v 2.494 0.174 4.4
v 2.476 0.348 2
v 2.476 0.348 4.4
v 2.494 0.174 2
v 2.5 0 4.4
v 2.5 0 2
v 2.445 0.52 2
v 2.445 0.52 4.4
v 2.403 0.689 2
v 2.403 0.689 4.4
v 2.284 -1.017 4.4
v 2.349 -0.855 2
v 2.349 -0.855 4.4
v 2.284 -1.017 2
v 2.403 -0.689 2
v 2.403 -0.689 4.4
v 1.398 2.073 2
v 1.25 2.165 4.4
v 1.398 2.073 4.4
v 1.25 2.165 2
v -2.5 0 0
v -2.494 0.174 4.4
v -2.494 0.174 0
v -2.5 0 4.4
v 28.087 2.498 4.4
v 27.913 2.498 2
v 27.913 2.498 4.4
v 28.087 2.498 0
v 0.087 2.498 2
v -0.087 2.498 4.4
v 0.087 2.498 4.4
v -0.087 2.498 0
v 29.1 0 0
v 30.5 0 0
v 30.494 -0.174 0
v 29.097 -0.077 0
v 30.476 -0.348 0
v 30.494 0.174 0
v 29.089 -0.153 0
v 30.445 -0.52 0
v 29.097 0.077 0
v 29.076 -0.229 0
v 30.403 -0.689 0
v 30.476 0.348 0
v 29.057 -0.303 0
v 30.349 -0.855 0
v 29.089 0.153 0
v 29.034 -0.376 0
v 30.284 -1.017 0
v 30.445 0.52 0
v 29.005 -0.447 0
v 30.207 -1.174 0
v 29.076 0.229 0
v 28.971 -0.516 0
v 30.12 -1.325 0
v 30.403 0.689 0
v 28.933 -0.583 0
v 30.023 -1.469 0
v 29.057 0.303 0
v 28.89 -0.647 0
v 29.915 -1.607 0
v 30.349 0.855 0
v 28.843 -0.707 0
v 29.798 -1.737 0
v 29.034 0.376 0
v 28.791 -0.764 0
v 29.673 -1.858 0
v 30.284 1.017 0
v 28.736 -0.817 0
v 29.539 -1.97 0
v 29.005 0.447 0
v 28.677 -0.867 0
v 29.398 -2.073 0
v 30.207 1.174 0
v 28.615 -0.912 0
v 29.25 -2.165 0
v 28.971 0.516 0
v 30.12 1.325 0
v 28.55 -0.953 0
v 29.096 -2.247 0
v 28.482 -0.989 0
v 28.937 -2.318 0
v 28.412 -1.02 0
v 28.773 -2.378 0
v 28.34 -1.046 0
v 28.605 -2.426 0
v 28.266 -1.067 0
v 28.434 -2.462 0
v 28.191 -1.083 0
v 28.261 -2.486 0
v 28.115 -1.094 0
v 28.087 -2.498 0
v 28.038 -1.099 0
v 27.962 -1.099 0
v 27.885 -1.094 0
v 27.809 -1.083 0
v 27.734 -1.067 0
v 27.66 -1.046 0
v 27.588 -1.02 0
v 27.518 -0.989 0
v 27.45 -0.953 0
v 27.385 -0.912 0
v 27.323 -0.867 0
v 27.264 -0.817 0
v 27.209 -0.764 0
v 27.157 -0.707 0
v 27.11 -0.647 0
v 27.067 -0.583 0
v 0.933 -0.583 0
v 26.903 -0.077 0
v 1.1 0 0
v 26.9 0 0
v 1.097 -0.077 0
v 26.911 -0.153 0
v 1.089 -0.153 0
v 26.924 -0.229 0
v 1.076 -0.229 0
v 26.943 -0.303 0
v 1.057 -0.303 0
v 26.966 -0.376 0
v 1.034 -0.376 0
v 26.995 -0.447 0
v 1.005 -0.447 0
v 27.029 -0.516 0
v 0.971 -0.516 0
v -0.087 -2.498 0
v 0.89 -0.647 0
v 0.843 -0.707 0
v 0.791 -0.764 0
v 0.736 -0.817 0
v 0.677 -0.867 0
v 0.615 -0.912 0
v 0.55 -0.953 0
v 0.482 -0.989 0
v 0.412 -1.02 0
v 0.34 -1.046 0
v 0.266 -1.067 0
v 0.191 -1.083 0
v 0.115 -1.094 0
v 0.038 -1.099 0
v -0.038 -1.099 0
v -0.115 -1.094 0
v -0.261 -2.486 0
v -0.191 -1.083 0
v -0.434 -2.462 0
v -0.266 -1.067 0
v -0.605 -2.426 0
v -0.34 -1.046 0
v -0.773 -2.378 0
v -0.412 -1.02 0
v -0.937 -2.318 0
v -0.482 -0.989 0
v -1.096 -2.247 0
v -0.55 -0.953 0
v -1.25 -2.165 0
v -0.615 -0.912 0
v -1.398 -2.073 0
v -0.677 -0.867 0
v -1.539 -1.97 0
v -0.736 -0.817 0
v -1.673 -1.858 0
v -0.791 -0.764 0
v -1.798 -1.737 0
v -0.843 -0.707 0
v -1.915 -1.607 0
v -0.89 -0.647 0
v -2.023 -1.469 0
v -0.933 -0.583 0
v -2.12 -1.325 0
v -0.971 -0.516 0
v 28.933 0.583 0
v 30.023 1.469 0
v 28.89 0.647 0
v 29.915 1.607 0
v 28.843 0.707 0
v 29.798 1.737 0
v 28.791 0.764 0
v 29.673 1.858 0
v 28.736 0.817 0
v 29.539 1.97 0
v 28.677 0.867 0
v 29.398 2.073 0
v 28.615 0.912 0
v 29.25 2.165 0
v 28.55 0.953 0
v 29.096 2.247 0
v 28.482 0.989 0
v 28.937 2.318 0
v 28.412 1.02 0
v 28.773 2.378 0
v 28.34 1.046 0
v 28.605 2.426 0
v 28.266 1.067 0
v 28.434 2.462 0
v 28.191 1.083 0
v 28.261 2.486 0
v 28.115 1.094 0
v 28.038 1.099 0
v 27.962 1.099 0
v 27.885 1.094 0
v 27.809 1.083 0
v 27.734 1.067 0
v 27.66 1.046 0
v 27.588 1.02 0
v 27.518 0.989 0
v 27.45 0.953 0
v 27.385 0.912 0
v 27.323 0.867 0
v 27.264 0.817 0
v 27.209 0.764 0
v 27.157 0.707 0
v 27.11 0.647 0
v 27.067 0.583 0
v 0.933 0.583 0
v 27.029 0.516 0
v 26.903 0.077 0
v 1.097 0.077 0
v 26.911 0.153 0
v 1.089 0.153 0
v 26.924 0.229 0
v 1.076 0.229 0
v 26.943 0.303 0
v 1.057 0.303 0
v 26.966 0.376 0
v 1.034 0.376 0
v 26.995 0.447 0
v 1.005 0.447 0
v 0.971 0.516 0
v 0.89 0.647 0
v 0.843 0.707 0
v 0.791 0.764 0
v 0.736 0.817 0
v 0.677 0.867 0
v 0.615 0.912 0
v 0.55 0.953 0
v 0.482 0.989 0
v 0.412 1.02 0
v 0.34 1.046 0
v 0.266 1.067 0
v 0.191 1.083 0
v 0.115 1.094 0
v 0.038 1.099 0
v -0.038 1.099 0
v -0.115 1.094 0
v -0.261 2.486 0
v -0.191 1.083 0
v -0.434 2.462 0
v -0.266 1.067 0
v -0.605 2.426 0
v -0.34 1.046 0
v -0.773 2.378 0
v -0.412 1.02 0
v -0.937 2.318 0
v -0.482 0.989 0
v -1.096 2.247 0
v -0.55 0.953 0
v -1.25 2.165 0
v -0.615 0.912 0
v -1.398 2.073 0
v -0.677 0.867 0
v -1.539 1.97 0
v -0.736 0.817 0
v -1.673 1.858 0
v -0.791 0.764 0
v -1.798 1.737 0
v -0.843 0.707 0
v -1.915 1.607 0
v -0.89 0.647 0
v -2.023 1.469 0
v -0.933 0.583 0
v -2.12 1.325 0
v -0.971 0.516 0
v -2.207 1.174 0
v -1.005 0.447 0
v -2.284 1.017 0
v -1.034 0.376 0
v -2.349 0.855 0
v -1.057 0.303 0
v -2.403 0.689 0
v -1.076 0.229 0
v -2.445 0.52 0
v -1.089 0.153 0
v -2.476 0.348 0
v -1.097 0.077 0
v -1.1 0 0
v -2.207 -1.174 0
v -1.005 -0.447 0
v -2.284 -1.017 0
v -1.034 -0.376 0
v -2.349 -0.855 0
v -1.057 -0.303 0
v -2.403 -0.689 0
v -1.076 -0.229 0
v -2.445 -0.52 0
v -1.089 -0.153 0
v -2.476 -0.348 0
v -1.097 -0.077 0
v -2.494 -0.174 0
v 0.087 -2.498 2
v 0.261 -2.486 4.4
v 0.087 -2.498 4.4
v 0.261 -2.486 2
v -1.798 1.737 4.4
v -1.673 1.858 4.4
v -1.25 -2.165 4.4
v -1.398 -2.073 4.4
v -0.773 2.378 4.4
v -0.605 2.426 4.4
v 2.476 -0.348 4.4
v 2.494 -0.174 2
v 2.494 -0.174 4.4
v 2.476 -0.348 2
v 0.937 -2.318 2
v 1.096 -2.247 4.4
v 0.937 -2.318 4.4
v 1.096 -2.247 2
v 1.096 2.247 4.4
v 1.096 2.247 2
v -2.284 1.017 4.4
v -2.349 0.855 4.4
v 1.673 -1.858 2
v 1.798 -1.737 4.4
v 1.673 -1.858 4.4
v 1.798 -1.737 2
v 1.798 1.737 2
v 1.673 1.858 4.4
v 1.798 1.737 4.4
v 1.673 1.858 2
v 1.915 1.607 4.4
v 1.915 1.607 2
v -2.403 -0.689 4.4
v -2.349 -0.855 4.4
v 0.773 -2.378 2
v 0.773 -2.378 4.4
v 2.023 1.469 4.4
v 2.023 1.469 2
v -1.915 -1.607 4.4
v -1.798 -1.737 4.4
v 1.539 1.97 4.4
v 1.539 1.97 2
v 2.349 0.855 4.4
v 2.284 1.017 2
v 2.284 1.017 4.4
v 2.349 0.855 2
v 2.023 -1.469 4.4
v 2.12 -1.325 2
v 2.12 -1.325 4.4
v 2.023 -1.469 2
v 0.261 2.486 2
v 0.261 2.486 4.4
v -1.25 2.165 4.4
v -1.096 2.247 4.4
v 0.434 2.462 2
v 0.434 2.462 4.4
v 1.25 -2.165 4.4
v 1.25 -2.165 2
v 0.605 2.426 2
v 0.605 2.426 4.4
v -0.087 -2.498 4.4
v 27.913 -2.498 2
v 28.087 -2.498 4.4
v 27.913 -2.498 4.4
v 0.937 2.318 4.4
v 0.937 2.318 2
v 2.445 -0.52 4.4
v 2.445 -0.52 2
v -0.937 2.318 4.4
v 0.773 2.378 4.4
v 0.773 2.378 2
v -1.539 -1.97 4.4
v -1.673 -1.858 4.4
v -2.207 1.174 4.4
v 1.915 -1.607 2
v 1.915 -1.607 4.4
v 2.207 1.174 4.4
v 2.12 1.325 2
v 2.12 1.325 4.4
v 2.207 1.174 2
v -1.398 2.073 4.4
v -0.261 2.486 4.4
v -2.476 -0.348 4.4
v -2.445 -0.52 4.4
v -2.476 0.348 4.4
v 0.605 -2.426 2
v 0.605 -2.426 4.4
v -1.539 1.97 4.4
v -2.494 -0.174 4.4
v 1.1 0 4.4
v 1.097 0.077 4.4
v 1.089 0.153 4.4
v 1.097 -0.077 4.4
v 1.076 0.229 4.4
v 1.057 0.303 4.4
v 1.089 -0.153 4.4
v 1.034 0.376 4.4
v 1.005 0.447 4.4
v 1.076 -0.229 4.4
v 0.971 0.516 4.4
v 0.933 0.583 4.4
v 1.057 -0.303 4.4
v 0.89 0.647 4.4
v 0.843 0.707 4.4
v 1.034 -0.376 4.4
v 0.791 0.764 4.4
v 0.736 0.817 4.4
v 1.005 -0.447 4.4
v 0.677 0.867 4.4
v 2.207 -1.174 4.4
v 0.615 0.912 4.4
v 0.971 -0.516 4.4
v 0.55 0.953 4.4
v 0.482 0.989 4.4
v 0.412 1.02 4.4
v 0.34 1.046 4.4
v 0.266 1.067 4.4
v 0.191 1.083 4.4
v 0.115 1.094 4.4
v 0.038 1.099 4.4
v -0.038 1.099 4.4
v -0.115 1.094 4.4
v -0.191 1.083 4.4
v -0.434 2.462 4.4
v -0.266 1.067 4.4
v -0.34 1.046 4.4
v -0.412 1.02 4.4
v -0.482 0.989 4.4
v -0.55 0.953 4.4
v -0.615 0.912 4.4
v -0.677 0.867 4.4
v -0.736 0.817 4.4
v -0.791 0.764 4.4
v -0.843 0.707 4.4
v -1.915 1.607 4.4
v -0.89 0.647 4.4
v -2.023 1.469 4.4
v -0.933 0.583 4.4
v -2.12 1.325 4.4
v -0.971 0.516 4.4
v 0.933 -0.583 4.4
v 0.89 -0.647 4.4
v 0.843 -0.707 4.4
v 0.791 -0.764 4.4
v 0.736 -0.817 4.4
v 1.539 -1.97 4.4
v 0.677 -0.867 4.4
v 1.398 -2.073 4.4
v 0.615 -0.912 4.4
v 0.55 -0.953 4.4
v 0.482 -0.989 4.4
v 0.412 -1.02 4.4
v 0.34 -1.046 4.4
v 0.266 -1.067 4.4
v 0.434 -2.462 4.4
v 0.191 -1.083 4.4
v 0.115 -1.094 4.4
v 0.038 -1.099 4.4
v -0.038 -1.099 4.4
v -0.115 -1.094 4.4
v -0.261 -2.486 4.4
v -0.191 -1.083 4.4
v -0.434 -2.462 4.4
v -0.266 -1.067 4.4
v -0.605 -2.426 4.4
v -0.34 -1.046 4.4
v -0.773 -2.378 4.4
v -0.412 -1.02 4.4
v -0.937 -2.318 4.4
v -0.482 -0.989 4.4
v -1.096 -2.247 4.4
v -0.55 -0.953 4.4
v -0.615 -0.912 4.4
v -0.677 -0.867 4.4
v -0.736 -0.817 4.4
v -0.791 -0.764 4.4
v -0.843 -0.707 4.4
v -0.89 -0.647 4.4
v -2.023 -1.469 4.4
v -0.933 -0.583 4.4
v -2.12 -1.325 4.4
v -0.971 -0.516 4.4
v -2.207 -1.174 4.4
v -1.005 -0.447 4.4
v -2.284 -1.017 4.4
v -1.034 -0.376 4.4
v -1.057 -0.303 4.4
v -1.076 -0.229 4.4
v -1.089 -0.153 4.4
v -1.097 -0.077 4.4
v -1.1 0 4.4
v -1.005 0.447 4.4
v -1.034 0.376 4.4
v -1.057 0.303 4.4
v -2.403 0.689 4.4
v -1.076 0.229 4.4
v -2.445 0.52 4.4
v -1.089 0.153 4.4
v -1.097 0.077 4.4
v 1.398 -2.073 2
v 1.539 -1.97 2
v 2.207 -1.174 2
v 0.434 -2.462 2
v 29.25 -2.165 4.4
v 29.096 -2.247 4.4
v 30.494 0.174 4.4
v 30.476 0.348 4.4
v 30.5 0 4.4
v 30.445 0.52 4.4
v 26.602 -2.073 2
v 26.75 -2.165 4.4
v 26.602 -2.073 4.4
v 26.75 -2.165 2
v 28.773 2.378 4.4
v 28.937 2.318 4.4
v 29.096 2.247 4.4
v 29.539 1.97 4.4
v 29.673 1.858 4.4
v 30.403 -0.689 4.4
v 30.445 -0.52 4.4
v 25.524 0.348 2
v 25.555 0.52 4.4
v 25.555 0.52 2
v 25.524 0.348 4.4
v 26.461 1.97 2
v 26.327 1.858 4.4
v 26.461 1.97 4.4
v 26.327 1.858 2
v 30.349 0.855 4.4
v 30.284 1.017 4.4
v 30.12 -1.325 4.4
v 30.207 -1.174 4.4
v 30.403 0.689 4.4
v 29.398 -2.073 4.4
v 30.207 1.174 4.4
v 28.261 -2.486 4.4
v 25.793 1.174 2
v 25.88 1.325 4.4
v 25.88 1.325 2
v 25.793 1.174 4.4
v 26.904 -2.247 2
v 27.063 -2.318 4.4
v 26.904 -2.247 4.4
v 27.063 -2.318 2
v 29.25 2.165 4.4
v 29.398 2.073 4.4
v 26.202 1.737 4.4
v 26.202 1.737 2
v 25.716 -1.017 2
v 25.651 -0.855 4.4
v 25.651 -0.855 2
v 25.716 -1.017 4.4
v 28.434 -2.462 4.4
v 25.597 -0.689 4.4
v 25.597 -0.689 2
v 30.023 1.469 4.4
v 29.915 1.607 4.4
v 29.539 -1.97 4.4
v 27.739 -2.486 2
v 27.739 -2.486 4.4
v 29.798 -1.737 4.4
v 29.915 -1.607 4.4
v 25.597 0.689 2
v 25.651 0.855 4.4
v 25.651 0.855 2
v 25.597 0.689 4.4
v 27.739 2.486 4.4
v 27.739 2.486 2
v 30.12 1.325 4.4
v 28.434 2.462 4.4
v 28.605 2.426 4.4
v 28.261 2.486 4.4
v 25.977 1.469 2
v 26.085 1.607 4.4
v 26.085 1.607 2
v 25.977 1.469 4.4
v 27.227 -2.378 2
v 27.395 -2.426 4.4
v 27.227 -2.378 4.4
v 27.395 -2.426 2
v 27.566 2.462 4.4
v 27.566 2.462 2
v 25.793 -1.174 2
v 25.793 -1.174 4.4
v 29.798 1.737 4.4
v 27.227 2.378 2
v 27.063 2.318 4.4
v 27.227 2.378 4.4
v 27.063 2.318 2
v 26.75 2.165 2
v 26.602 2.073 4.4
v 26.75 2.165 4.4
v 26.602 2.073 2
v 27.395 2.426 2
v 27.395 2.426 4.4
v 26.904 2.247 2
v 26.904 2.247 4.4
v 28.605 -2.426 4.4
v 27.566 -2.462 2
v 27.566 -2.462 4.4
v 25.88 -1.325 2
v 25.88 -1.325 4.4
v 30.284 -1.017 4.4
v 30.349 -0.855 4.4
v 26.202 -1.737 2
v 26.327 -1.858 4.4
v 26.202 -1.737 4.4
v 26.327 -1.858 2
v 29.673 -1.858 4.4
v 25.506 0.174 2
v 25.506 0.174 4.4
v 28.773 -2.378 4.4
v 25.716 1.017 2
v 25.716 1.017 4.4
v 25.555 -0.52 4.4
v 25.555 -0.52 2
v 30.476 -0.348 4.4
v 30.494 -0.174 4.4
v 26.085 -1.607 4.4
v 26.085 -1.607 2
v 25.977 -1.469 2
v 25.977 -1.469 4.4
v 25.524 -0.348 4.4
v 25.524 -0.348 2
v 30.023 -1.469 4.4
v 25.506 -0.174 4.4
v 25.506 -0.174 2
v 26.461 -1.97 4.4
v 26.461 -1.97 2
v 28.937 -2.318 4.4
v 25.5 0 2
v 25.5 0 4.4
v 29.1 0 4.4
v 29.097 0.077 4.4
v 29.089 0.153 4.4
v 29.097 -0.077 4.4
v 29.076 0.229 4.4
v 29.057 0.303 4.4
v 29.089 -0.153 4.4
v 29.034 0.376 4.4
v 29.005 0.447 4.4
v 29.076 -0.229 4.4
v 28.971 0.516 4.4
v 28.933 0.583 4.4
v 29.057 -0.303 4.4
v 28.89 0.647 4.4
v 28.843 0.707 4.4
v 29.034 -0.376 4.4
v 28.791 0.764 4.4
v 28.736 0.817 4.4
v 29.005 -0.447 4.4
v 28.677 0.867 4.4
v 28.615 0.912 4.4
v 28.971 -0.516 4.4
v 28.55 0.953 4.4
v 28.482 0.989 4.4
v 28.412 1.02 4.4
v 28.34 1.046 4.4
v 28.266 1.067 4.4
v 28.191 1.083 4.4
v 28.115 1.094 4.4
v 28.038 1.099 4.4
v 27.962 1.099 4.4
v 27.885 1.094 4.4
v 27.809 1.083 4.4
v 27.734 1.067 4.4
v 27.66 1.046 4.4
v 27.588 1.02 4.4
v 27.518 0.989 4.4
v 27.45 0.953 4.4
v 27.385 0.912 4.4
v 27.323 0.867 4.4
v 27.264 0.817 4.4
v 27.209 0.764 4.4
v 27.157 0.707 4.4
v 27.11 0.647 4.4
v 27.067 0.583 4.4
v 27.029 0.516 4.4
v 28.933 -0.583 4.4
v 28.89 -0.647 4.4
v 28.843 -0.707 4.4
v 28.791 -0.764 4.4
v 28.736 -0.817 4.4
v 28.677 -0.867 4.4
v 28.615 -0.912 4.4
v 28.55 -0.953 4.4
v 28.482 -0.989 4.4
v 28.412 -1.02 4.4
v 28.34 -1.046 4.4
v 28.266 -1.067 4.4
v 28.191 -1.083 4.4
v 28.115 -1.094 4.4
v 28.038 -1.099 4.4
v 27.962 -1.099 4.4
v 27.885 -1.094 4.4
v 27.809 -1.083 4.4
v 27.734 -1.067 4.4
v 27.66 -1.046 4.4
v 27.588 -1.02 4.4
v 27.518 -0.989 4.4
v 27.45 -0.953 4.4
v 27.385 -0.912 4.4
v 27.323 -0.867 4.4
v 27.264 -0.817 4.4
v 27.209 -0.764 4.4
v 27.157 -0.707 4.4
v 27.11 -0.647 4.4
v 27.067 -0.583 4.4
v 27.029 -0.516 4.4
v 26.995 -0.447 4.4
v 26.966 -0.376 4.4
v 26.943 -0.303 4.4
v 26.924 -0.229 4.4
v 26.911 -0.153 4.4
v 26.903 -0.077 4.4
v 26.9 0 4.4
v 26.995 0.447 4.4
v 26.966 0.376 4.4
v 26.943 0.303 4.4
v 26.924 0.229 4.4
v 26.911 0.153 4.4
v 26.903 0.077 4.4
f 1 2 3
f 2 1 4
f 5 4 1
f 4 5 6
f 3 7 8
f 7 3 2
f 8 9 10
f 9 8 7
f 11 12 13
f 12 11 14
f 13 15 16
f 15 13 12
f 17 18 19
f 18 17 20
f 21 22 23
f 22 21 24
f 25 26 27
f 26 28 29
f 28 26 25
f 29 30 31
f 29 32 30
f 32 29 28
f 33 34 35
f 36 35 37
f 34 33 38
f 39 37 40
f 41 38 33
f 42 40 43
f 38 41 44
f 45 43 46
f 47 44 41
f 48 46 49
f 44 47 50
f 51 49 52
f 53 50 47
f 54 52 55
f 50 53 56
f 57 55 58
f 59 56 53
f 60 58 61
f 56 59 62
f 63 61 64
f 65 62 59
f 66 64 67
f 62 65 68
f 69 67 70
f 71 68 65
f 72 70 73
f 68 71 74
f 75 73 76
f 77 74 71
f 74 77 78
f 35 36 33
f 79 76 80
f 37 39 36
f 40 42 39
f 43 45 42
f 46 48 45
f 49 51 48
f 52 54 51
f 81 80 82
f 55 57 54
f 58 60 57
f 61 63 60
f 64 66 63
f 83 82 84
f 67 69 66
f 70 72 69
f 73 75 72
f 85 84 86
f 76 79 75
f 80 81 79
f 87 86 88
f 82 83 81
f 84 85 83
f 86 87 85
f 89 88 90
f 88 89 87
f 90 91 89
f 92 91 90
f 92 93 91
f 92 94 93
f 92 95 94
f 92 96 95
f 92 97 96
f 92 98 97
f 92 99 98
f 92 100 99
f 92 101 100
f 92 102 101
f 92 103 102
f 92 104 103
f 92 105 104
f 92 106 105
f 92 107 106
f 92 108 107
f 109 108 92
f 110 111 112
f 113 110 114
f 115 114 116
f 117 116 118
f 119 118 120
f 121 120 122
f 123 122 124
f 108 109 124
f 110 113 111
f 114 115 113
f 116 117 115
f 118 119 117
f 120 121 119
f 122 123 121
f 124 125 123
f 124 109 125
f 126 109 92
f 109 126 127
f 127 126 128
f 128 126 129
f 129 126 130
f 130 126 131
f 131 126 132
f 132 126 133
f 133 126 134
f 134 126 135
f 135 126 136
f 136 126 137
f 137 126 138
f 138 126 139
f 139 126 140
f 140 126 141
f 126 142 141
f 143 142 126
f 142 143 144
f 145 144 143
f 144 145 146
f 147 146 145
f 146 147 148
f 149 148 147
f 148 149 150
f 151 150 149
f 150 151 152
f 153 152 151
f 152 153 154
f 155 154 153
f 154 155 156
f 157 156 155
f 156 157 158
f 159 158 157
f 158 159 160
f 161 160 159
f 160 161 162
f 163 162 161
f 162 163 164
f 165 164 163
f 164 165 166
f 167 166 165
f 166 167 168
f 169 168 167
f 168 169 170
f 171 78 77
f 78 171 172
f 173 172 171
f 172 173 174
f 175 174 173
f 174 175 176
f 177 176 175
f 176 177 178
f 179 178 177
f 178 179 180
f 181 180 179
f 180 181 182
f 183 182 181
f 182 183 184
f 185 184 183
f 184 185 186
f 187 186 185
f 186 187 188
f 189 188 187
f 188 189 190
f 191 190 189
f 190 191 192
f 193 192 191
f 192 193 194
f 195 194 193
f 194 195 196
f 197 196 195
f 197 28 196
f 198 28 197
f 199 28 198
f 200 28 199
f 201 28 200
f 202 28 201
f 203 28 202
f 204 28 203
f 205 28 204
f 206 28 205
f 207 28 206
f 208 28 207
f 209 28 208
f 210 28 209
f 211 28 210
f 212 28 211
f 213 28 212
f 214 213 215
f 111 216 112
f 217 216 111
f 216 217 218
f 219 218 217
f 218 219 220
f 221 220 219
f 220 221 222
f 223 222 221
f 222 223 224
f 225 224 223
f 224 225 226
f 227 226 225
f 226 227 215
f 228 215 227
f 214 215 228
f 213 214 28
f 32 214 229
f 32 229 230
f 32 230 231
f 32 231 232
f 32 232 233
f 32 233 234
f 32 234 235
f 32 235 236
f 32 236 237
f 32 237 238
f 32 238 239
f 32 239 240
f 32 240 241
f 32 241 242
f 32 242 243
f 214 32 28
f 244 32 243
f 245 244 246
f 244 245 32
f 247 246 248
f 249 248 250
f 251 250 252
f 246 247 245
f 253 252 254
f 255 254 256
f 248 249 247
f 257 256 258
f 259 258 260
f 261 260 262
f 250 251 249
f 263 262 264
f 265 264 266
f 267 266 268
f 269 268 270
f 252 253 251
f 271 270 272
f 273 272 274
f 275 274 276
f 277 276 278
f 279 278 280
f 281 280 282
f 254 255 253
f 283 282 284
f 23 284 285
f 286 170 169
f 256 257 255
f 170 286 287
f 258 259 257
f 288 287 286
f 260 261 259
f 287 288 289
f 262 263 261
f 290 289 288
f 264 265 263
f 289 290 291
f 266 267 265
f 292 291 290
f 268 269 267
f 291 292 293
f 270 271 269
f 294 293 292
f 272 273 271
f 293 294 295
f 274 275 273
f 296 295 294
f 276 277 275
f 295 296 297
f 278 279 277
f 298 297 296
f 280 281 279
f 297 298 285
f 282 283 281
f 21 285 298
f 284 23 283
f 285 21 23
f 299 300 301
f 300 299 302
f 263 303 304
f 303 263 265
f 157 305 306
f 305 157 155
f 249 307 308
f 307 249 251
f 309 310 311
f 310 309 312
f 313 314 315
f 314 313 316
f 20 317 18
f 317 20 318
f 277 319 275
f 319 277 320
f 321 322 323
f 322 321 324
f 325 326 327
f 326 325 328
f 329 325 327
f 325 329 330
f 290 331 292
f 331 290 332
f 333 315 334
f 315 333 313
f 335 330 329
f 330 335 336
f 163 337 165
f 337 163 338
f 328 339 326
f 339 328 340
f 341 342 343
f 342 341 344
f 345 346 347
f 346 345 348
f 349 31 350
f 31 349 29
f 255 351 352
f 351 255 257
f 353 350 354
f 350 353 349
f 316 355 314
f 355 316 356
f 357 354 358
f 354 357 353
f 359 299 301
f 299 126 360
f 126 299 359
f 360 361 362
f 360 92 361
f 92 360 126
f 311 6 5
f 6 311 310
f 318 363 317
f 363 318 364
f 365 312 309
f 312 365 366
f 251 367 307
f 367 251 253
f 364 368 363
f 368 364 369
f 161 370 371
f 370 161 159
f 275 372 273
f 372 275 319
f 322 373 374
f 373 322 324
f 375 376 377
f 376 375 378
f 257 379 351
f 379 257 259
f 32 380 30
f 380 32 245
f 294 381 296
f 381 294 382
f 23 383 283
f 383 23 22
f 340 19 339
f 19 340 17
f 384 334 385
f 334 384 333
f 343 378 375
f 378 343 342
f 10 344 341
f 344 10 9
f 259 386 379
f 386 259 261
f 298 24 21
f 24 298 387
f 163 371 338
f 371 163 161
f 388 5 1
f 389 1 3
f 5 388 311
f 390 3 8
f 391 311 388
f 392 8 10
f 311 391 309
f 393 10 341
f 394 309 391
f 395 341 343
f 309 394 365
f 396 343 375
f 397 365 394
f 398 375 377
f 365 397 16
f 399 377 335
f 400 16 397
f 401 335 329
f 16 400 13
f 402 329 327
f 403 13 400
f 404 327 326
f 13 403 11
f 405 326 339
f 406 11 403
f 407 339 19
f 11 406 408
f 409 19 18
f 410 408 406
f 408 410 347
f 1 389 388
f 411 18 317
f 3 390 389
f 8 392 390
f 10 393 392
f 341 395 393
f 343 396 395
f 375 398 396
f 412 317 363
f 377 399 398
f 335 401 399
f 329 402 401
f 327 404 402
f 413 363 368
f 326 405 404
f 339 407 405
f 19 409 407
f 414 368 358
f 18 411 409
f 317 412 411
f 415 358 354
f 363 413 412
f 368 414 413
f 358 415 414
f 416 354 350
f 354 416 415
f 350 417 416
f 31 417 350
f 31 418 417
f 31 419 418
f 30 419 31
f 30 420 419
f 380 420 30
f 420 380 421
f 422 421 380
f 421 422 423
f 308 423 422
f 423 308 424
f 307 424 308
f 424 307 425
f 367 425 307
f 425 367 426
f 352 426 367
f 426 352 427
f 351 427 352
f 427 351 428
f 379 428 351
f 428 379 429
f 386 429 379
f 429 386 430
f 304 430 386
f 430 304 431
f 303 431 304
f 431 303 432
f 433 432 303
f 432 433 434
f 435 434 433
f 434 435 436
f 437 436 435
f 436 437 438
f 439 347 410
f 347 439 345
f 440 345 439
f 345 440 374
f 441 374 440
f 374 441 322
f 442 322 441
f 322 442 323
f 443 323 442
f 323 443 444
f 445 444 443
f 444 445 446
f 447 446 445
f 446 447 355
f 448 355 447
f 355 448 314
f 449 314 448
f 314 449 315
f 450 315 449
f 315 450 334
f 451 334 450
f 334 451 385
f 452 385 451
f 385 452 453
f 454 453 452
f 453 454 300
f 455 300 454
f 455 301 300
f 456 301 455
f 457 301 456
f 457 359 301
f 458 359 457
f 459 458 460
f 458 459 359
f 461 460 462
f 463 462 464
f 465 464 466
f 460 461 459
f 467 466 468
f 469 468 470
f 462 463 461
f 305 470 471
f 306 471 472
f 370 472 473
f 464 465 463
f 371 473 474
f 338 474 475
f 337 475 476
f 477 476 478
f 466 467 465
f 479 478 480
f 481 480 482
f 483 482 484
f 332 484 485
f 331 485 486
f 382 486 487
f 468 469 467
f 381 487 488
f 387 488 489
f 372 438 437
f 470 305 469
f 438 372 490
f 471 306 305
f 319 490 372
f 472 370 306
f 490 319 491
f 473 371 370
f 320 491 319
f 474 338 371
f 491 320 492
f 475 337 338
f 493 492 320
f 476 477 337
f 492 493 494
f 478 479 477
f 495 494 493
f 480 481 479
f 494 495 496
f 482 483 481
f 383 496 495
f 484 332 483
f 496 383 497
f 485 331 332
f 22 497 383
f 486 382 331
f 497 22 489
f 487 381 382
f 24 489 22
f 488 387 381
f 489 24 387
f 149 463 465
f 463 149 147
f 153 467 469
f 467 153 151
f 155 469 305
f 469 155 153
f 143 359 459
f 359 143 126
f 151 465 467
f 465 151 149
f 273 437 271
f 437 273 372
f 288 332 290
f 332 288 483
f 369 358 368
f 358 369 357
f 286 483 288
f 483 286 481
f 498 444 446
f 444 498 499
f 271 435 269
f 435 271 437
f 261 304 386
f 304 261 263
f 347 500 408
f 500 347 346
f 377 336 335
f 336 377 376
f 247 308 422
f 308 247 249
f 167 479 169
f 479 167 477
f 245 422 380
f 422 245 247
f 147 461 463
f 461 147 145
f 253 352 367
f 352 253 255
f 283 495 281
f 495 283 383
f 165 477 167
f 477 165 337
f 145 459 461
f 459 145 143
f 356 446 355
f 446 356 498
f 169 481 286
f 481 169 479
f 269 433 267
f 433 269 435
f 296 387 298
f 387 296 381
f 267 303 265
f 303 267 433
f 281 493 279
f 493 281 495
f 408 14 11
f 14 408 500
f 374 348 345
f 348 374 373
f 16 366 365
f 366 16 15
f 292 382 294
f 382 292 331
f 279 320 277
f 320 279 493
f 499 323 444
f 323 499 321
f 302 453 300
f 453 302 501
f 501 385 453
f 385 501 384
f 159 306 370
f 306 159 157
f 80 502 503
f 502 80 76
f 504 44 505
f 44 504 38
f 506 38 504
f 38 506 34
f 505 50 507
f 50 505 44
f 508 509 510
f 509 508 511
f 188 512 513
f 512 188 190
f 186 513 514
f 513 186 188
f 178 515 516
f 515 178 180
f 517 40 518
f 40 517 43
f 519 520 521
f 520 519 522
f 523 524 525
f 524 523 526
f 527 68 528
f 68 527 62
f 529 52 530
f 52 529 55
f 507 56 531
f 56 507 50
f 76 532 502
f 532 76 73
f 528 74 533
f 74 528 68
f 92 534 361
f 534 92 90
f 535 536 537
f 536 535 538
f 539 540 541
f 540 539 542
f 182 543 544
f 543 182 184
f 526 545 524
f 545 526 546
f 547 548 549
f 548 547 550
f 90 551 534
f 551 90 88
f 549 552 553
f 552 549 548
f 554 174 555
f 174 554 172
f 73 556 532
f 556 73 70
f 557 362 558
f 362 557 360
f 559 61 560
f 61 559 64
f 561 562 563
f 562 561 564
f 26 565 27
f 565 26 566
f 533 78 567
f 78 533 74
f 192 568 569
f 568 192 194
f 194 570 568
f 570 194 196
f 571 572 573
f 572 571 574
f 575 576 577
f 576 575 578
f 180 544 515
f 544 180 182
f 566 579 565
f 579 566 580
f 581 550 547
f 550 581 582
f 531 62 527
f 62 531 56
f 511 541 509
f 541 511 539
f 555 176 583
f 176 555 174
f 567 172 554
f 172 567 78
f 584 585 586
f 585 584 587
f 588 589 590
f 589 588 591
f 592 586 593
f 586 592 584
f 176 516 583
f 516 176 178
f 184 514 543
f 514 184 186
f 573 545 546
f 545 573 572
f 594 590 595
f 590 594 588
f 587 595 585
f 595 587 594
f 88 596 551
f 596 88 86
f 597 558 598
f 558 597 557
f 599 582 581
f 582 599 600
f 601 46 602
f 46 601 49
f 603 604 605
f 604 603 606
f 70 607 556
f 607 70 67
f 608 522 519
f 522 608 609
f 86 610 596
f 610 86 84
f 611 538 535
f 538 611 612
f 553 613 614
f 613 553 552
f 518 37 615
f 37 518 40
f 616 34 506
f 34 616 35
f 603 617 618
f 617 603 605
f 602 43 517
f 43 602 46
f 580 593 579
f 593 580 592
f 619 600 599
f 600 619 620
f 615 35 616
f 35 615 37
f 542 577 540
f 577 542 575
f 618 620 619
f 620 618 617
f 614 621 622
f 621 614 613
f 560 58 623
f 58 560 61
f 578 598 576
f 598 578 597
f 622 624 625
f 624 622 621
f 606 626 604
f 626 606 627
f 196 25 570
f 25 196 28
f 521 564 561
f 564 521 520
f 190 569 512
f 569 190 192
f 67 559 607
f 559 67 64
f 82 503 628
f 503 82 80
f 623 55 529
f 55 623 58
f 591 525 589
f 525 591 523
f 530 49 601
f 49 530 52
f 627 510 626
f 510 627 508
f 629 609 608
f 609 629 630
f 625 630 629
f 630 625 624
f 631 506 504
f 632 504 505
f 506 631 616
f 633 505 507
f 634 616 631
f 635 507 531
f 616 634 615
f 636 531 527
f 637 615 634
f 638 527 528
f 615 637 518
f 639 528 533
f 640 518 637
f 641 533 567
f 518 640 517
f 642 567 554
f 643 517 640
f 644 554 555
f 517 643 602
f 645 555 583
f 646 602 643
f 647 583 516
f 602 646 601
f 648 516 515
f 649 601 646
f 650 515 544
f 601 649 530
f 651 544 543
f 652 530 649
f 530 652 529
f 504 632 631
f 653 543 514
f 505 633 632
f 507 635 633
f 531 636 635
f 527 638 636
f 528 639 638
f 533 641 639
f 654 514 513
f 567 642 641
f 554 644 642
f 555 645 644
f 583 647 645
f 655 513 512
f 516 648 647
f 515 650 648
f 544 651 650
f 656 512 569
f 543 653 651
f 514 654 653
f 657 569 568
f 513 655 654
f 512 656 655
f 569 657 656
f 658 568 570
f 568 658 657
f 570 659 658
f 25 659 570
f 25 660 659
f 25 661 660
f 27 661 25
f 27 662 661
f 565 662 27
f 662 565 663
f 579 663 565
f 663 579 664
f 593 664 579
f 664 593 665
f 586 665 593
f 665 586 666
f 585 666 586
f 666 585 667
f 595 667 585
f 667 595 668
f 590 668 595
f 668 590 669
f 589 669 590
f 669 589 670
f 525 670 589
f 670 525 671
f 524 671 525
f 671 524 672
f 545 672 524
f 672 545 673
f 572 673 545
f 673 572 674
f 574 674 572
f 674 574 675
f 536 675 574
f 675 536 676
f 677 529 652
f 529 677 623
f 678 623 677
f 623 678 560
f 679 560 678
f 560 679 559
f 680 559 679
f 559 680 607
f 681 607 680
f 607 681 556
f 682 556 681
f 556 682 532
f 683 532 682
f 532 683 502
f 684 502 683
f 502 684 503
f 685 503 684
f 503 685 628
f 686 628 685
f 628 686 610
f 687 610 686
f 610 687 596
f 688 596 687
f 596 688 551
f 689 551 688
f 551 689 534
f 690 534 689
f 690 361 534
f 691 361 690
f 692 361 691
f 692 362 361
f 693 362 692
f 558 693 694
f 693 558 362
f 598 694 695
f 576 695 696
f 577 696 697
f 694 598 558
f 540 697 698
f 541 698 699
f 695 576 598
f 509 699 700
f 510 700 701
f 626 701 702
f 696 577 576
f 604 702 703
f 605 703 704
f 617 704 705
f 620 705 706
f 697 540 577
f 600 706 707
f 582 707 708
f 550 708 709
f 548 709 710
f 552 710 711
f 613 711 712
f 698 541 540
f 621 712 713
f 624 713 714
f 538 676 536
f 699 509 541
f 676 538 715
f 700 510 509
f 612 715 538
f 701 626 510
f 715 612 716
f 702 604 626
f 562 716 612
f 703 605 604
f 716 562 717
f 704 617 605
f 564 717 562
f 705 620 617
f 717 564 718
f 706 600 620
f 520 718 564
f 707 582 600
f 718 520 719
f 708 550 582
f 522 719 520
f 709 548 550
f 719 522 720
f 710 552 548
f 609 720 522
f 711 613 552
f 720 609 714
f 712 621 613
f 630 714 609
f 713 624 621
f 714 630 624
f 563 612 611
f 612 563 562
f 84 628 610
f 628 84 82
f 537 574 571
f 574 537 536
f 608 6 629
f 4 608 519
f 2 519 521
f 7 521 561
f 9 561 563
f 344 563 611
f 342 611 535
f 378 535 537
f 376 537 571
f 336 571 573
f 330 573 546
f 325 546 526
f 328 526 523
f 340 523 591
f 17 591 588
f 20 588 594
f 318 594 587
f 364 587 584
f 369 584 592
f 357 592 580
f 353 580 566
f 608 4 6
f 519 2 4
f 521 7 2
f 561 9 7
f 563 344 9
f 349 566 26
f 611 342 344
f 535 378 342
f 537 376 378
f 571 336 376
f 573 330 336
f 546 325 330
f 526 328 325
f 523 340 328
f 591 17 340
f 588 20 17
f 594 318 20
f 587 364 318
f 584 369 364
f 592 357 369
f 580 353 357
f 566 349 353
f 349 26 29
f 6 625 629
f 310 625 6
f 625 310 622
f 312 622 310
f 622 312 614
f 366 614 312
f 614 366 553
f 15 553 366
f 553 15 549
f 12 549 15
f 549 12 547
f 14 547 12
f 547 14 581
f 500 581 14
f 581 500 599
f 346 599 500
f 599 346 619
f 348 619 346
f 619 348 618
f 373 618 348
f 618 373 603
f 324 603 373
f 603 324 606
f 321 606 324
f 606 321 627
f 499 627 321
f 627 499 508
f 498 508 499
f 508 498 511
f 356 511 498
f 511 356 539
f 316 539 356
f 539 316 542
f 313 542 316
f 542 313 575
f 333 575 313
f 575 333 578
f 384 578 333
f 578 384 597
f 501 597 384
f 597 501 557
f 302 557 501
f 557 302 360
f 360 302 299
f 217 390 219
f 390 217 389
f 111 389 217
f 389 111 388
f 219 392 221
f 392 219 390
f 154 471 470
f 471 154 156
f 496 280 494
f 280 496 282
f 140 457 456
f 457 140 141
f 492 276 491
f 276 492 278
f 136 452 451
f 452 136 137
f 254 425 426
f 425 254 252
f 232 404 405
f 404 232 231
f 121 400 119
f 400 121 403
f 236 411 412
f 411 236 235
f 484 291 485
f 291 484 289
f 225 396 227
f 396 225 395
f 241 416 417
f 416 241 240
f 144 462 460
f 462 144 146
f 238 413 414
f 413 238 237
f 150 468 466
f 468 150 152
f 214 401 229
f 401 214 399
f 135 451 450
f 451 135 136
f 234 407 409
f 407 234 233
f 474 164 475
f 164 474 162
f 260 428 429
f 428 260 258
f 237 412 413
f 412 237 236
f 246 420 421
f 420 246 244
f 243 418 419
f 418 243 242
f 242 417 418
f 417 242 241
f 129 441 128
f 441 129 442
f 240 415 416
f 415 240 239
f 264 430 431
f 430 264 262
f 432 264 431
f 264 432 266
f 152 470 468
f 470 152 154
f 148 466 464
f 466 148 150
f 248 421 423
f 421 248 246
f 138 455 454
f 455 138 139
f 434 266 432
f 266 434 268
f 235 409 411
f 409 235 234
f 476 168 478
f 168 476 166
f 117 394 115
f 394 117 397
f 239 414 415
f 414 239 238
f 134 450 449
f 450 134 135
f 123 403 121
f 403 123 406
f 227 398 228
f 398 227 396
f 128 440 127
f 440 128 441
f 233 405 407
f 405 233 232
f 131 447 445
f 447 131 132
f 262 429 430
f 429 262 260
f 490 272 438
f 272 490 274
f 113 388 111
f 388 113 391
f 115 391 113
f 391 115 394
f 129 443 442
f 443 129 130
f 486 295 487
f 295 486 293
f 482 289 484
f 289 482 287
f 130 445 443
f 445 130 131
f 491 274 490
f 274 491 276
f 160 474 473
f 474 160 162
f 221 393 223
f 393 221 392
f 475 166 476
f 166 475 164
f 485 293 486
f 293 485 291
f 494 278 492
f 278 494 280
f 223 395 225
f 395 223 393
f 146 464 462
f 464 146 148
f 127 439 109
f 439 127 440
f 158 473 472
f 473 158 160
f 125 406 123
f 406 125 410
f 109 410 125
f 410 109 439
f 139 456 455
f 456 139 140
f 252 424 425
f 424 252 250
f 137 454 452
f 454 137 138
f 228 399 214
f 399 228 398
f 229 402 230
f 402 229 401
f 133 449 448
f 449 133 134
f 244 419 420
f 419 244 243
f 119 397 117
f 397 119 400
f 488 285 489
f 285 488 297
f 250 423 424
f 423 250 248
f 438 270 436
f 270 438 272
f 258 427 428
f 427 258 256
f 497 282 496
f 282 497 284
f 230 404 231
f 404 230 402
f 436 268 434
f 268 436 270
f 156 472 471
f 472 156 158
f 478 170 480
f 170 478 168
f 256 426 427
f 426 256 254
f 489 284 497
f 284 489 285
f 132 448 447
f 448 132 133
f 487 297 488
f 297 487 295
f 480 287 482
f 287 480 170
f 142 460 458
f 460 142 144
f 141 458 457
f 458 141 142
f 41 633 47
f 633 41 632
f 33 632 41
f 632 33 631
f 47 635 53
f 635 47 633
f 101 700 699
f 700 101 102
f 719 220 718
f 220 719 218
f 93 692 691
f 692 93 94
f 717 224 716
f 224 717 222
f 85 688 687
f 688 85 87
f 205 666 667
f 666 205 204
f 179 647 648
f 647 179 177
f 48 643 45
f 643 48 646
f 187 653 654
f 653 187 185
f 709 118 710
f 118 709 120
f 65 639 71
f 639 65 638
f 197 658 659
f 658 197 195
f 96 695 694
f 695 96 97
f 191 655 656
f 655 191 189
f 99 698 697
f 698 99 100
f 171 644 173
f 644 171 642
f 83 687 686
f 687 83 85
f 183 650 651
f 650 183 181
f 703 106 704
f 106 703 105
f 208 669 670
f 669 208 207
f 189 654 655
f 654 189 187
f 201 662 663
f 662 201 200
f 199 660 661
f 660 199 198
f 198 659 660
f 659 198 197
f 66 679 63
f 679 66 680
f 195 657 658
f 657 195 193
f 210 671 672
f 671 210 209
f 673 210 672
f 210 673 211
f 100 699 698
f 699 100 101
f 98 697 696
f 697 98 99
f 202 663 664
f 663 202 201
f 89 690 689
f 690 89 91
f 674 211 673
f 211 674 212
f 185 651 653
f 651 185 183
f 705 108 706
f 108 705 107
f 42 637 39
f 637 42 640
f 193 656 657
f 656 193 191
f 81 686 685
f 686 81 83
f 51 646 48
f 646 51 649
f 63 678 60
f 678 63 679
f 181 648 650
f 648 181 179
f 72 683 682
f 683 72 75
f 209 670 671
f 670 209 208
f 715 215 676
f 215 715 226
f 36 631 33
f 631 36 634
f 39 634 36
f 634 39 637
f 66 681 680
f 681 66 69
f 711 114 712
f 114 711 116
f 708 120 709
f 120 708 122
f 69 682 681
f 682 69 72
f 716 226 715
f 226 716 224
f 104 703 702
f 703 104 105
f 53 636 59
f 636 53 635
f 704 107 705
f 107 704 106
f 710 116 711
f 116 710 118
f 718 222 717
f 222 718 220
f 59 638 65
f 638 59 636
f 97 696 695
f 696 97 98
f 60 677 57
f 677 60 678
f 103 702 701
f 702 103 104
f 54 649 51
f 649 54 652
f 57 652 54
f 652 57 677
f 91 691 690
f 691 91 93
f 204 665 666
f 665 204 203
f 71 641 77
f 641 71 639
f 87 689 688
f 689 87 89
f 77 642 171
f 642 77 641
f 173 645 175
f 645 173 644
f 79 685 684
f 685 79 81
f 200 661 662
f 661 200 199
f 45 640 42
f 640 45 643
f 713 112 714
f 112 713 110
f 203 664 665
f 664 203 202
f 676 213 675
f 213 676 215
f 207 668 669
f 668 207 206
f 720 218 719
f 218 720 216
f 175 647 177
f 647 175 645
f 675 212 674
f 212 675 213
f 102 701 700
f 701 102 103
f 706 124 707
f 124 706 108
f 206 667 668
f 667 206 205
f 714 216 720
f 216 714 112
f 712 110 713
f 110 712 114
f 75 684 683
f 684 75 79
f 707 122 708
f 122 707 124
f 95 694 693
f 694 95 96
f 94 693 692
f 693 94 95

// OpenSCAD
$fn=90;
hole_r = 2.2/2;
tube_r = 5/2;
hole_dx = 28;
h1 = 4.4;
h2 = 2;

module spacer() {
difference() {
    union() {
        cylinder(r=tube_r,h=h1);
        translate([hole_dx,0,0]) cylinder(r=tube_r,h=h1);
        hull() {
        cylinder(r=tube_r,h=h2);
        translate([hole_dx,0,0]) cylinder(r=tube_r,h=h2);
        }
    }
    cylinder(r=hole_r,h=h1);
    translate([hole_dx,0,0]) cylinder(r=hole_r,h=h1);
}
}

for (i = [0 : 0]) {
    translate([0,(5+1)*i,0]) spacer(); 
}
